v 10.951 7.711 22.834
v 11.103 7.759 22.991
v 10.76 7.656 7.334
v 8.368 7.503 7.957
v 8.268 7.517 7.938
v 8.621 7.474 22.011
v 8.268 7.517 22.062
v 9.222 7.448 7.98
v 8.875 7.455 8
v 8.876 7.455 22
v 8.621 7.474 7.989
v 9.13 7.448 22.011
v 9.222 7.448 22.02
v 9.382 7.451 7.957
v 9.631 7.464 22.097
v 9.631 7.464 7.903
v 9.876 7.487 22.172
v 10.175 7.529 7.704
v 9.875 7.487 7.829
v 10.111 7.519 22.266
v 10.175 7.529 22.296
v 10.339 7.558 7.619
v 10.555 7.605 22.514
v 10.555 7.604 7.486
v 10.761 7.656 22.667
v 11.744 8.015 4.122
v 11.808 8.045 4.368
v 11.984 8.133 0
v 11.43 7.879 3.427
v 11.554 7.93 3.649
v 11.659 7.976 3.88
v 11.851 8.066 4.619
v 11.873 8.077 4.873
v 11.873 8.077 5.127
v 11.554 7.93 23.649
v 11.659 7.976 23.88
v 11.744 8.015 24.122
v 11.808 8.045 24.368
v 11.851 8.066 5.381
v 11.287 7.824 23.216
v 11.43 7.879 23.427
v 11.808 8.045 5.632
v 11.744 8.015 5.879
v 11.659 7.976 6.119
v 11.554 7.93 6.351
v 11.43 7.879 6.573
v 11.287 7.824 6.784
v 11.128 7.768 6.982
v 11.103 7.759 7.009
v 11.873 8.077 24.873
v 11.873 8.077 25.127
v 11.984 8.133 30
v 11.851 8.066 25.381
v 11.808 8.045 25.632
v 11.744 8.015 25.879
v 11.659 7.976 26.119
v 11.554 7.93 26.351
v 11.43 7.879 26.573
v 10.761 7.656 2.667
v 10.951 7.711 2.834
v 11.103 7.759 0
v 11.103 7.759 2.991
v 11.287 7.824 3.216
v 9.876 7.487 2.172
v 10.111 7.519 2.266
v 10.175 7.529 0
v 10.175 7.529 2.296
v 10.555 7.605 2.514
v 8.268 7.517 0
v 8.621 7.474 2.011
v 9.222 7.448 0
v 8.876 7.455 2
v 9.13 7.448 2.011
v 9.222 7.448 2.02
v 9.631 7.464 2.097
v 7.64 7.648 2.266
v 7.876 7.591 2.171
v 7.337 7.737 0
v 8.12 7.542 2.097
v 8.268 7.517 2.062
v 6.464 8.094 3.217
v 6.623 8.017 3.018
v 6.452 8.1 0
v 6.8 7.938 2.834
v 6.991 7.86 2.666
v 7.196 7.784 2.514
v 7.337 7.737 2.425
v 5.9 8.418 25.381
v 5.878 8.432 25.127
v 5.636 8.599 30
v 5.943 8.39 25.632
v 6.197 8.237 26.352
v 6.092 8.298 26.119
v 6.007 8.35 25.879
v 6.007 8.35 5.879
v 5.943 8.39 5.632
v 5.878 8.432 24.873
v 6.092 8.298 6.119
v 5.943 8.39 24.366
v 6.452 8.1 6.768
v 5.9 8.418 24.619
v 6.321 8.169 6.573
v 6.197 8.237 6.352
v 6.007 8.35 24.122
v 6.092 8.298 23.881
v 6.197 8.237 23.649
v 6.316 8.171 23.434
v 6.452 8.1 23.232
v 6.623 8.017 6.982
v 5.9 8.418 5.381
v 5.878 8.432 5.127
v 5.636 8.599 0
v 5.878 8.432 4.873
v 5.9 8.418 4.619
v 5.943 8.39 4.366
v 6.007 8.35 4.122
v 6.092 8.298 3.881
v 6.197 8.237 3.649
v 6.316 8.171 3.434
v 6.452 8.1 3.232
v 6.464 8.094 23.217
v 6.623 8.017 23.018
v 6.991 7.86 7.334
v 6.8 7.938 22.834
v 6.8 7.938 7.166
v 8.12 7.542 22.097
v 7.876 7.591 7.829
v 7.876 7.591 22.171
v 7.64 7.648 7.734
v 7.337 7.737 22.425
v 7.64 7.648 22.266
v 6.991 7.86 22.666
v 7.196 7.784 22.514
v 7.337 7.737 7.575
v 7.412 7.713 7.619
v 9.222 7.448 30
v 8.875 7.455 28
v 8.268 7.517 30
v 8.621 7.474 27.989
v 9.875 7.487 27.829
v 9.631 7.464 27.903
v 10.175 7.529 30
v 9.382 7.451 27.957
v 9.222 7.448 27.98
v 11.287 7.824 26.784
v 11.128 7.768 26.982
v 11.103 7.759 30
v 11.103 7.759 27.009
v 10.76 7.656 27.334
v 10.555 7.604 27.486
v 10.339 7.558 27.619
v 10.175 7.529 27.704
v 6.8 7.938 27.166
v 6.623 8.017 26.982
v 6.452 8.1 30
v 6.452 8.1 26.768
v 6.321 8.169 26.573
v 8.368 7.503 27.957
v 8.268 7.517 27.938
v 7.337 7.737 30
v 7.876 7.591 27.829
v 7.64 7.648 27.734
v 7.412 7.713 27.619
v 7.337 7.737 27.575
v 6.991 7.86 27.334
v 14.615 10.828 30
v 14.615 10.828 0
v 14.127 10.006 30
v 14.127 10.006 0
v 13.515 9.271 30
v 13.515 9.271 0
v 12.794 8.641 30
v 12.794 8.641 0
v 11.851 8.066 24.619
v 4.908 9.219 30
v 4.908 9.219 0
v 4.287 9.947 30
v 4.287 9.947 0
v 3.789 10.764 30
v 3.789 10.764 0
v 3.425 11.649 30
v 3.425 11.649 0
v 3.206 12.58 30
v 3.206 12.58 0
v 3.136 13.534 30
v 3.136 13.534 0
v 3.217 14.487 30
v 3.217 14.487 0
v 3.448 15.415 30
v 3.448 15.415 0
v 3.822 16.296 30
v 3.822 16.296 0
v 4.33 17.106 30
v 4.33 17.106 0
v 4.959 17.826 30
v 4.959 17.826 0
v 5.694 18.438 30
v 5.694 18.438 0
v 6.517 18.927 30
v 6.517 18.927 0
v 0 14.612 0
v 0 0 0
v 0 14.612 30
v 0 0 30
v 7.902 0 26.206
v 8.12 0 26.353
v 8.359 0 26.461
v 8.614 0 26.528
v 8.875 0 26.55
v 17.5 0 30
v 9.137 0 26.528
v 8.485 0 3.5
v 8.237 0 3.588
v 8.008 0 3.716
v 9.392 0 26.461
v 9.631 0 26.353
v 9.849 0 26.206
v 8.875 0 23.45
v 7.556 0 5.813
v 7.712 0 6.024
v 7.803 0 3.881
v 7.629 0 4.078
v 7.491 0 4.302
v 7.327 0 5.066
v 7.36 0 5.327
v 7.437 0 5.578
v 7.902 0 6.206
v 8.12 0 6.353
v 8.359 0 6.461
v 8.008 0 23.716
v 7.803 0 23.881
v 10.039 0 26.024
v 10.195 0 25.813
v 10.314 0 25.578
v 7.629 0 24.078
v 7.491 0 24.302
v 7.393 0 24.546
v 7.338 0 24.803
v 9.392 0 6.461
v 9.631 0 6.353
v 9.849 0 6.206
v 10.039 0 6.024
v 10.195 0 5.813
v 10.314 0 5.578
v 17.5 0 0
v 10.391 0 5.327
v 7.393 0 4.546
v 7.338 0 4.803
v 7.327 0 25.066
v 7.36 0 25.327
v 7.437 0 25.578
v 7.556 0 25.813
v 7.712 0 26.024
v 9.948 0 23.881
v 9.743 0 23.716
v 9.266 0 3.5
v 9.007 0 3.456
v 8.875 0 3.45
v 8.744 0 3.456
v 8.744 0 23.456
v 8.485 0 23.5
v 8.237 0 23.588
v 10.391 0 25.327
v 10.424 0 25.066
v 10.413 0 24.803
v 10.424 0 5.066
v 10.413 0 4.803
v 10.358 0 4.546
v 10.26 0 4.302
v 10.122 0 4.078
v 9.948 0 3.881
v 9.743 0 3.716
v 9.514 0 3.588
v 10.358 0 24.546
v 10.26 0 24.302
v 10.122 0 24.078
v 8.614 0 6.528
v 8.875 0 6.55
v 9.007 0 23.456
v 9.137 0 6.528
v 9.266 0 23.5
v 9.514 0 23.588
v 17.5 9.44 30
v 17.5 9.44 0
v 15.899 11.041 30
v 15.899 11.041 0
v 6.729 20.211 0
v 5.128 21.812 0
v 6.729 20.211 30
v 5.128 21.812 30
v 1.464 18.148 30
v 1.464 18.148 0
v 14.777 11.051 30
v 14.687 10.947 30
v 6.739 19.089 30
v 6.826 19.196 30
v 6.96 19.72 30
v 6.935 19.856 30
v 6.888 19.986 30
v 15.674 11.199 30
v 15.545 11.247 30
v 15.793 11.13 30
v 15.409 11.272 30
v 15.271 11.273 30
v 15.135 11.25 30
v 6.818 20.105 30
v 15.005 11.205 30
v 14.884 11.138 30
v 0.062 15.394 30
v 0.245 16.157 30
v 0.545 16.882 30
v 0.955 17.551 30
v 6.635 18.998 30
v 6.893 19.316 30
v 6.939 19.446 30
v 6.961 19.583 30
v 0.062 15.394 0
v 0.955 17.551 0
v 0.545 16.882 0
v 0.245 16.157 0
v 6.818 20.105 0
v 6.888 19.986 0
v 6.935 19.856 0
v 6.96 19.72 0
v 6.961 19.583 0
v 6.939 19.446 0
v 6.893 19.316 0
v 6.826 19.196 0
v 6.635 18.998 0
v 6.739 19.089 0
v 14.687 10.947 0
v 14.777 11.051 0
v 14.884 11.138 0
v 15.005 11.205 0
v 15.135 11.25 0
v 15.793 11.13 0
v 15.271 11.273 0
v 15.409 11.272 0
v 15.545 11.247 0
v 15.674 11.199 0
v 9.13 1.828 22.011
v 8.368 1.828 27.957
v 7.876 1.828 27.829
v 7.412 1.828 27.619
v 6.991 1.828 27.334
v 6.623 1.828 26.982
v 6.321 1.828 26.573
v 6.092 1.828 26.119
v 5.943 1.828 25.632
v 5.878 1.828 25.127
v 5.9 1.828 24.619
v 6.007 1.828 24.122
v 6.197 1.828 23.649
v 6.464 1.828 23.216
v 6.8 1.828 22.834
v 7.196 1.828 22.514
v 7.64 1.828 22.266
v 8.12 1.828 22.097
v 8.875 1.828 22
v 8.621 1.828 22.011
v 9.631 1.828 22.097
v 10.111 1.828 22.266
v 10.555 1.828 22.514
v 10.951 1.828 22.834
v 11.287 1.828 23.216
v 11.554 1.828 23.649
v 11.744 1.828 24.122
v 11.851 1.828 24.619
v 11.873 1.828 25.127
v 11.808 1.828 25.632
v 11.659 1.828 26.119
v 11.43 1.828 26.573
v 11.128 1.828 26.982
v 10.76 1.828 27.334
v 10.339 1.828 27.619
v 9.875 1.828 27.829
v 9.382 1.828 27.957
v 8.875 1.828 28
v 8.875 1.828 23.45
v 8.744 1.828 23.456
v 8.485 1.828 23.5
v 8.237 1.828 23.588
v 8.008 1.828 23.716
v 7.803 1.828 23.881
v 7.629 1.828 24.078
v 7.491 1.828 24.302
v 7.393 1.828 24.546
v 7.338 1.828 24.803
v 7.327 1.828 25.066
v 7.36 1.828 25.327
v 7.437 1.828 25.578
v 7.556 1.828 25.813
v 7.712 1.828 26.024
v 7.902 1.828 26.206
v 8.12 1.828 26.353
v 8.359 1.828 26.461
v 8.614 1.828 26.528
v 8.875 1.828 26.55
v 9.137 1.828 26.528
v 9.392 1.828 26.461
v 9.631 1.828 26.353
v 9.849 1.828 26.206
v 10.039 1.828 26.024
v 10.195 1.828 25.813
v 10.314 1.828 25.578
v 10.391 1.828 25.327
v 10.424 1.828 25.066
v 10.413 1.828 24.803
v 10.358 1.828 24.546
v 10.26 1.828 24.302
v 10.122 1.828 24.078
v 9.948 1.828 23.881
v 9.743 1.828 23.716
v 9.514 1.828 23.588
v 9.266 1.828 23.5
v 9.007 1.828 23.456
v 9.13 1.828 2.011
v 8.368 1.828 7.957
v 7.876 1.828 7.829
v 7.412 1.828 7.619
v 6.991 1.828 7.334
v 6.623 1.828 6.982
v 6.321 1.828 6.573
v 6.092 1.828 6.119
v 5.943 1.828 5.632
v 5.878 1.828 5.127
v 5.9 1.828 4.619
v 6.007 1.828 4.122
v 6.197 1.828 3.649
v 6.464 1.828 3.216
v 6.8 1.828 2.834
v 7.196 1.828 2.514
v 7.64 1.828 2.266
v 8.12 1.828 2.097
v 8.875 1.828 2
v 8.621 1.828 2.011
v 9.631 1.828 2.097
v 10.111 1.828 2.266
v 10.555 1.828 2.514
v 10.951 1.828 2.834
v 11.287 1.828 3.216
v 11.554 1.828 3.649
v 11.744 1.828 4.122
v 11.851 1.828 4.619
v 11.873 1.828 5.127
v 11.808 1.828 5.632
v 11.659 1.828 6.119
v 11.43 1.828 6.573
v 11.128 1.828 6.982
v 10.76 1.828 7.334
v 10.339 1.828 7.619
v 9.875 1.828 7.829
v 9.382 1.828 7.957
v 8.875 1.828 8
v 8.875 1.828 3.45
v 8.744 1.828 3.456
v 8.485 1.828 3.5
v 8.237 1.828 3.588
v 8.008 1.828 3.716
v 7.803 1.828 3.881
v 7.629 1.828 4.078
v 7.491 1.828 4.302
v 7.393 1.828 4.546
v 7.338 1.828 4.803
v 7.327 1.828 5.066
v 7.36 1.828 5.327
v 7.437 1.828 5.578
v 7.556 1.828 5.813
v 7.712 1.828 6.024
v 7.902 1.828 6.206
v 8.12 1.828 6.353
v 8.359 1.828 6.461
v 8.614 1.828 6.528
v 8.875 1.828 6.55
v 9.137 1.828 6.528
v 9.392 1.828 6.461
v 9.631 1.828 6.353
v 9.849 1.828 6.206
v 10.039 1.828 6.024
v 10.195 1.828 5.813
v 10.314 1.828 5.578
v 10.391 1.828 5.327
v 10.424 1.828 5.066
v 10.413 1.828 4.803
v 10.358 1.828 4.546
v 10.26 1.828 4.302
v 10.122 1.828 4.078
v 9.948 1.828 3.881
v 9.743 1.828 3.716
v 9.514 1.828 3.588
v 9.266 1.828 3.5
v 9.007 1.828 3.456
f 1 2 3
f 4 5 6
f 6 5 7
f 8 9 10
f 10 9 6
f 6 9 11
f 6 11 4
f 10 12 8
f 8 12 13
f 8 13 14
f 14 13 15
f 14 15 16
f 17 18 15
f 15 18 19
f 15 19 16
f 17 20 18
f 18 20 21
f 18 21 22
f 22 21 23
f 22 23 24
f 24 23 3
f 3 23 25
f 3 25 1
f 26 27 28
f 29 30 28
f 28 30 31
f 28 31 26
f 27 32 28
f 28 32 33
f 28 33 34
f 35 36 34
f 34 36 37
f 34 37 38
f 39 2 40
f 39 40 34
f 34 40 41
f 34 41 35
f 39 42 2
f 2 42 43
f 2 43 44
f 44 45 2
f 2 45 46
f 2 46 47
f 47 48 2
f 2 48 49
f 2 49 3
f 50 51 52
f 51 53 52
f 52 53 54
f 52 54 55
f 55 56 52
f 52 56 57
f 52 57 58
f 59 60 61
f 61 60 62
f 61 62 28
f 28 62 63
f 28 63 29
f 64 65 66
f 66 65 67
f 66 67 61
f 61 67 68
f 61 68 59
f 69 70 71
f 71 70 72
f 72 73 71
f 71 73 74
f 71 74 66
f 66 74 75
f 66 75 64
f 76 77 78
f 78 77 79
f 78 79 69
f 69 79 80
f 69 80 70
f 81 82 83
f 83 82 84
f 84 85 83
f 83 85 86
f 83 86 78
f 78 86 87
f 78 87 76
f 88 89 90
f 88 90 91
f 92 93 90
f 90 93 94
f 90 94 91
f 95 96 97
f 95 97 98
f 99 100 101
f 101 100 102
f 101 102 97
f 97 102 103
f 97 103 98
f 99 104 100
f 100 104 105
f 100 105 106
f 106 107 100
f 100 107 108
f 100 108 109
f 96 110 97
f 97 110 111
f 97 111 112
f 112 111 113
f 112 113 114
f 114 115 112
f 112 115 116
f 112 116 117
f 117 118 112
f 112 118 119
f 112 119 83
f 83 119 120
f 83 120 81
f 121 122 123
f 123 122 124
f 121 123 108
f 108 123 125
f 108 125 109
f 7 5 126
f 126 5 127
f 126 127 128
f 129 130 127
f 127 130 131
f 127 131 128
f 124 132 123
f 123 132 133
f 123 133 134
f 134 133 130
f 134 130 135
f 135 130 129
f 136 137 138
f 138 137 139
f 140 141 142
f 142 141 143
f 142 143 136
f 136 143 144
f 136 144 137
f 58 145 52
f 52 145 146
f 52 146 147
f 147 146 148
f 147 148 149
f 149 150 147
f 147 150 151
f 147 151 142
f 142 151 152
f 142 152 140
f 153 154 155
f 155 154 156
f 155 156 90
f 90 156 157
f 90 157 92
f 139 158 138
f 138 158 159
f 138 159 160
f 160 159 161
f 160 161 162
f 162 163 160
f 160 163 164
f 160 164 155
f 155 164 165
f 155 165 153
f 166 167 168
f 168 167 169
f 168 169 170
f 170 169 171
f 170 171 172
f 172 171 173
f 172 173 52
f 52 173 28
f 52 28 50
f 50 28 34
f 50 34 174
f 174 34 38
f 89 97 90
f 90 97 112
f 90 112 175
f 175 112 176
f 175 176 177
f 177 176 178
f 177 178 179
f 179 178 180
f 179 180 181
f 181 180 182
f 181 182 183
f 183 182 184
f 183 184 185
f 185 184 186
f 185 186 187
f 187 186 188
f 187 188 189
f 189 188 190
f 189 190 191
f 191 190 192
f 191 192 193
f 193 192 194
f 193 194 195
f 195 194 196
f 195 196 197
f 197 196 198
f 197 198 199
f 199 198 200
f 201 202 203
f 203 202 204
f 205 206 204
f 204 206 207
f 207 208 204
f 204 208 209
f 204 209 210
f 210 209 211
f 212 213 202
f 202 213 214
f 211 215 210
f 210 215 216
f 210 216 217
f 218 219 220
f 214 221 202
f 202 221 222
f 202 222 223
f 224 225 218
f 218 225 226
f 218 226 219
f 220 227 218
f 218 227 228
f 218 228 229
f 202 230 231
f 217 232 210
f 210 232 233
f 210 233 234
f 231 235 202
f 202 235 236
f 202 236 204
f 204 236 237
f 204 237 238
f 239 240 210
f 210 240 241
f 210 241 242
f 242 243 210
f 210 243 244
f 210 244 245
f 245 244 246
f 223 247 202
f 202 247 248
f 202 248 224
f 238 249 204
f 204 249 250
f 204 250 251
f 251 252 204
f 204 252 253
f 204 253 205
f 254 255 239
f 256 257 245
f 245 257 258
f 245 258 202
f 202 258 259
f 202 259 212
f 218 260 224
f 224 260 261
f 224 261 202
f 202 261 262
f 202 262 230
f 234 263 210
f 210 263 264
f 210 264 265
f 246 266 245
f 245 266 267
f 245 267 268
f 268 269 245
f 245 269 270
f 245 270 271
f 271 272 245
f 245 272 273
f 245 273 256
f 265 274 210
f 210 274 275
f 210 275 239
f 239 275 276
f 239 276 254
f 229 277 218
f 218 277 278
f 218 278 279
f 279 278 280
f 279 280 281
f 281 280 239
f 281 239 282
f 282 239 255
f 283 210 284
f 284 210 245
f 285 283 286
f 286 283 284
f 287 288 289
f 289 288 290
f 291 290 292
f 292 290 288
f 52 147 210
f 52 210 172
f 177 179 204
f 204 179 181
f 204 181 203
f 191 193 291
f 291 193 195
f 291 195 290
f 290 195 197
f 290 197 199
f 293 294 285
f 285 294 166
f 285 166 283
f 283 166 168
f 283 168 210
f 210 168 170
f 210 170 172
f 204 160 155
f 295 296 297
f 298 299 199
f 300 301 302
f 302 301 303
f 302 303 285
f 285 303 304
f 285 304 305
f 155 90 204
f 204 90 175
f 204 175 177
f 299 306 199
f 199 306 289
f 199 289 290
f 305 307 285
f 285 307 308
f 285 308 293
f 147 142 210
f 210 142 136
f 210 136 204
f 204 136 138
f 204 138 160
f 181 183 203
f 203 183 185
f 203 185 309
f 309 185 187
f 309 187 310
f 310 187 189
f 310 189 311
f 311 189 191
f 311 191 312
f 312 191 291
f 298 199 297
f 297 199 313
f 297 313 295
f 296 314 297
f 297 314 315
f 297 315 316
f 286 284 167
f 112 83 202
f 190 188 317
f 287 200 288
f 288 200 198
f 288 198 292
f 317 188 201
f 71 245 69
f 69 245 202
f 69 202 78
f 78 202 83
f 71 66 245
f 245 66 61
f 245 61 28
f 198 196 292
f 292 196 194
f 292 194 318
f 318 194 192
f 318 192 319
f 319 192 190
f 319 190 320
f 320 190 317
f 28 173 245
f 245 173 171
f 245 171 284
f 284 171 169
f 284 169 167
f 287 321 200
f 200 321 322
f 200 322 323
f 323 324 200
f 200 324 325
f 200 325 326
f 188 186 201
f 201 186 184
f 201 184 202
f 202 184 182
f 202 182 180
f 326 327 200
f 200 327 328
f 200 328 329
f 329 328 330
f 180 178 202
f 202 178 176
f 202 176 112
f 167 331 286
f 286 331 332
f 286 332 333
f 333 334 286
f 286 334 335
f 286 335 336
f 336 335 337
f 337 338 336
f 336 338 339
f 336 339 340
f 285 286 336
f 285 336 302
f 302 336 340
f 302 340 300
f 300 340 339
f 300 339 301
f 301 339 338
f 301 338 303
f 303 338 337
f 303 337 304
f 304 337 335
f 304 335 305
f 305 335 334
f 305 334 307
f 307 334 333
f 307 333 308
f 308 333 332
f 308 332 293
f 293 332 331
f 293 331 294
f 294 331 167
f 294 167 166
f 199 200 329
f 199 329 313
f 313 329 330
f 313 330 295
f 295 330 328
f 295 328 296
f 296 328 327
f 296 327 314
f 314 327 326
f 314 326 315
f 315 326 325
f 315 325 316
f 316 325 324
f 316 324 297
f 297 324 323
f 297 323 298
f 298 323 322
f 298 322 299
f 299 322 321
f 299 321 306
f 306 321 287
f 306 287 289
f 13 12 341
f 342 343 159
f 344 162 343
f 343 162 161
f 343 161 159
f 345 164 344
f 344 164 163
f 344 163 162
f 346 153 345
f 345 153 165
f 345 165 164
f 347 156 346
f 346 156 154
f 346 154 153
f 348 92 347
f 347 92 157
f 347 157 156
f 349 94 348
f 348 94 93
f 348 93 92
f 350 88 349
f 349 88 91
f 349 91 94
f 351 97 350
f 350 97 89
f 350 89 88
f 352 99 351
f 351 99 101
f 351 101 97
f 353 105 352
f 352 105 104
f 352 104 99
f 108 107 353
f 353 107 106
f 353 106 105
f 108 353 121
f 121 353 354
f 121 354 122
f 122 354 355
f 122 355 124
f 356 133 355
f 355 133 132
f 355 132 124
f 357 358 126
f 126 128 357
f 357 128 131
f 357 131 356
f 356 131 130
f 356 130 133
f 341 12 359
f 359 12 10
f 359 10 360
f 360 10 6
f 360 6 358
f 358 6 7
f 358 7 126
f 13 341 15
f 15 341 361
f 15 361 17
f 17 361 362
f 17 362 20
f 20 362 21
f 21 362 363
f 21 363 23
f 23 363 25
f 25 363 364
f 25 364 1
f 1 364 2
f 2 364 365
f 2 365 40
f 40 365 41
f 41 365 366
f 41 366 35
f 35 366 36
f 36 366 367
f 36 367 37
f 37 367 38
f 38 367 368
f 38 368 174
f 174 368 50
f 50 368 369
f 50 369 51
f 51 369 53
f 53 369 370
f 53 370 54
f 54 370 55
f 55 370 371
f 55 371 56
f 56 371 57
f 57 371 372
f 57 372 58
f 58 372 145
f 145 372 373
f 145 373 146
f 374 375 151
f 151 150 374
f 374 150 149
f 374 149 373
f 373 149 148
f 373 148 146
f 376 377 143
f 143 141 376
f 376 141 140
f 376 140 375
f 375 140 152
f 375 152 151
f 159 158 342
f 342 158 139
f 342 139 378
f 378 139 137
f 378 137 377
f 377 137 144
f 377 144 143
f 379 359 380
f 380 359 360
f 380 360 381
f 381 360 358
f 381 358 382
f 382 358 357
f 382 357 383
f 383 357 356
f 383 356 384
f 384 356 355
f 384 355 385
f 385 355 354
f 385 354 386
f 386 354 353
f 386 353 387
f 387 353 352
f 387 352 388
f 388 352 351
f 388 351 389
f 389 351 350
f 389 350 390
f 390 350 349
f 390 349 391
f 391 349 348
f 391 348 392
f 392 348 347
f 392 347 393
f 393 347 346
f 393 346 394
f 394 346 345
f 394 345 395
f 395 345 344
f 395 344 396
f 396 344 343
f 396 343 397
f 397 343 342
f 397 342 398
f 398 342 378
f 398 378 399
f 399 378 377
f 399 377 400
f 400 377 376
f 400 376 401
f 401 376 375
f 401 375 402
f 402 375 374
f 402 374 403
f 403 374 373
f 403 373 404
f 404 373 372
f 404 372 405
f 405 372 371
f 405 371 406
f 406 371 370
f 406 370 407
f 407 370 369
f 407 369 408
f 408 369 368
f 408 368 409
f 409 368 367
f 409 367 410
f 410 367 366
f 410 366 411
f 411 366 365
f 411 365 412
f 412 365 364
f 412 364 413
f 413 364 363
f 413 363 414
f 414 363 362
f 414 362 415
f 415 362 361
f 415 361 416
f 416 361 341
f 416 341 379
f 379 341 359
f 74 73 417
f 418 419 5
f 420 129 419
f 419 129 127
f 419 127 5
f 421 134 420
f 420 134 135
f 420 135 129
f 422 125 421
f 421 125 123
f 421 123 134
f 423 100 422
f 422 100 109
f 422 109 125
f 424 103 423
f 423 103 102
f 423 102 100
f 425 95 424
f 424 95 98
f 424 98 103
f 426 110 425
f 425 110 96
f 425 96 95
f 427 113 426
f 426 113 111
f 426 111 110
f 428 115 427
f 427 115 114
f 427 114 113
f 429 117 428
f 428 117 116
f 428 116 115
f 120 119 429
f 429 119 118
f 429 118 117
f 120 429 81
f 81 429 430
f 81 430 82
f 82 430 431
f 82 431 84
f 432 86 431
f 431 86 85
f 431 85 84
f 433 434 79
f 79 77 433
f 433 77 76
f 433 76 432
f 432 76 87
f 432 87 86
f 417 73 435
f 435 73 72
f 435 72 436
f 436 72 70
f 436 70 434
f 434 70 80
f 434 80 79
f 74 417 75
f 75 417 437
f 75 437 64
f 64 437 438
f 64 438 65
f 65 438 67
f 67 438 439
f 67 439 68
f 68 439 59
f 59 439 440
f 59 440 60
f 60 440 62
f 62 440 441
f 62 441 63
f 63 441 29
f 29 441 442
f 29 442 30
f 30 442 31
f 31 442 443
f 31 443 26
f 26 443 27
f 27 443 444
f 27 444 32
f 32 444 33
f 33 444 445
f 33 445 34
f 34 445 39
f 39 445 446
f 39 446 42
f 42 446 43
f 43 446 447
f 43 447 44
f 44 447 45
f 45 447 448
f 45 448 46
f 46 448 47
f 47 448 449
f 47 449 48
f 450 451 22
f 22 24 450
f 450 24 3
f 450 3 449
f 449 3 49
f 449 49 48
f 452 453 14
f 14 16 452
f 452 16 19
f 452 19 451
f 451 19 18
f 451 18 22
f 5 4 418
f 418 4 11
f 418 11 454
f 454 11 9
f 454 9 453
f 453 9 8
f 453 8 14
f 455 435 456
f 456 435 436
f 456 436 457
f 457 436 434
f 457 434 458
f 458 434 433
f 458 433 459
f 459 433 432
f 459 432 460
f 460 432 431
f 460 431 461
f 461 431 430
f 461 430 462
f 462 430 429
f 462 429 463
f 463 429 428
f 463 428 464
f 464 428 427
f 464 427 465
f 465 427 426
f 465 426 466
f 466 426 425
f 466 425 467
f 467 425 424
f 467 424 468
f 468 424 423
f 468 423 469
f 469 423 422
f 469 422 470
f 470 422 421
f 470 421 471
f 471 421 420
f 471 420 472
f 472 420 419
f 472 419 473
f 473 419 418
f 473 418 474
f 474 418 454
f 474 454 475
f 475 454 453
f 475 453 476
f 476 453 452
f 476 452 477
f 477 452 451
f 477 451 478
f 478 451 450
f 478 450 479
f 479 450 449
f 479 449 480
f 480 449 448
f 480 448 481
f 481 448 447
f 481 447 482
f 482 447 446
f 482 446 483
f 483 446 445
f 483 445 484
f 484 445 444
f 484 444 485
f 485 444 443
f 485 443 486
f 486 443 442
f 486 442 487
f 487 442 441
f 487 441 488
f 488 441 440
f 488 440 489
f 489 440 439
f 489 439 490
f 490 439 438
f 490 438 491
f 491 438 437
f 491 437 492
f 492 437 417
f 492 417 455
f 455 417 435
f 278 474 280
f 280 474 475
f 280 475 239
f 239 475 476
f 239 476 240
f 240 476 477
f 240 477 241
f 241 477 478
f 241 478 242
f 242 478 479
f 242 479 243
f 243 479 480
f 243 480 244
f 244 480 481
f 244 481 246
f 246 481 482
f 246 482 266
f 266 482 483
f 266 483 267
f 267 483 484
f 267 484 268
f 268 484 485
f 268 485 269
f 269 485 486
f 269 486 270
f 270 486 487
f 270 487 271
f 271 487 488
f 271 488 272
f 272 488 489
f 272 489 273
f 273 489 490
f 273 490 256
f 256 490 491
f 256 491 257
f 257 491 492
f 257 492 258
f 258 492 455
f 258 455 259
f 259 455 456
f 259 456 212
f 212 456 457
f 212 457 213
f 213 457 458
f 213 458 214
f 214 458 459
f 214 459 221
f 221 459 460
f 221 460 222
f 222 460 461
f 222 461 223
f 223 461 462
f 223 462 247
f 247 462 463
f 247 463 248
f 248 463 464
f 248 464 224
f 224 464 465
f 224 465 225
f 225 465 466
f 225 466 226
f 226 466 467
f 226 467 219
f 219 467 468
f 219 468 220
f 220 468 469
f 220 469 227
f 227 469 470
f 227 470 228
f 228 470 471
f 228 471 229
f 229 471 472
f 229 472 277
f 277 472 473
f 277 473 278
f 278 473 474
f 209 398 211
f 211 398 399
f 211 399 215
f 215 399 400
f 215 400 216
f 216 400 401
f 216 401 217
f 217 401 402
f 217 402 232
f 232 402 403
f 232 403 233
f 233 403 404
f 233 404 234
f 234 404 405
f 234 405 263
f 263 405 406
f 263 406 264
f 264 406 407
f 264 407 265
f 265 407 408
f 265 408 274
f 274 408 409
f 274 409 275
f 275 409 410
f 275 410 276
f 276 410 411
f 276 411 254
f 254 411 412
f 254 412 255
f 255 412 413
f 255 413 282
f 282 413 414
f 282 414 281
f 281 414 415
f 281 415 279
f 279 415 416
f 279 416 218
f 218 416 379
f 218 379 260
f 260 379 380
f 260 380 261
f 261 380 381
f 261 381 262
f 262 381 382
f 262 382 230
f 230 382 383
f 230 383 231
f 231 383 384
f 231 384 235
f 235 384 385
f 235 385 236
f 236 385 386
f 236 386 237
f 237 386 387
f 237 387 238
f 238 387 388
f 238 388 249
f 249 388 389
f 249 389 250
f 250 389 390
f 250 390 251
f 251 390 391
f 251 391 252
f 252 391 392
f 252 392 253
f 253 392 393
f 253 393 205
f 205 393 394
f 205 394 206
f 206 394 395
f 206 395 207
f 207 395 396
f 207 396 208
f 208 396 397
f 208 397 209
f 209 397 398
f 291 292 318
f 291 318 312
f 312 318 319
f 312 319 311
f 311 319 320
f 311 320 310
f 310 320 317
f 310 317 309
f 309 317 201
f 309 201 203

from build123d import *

# Parameters (mm, degrees)
BOSS_EXTRUDE1_DEPTH = 30
FILLET1_R           = 0.8
SKETCH3_R           = 3
CUT_EXTRUDE1_DEPTH  = 9
SKETCH4_R           = 1.55
CUT_EXTRUDE2_DEPTH  = 37.426390381
FILLET2_R           = 5


with BuildPart() as part:
    # Sketch1 → Boss-Extrude1 (new body)
    with BuildSketch(Plane.XY):
        with BuildLine():
            Line((0, 0), (17.5, 0))
            Line((17.5, 0), (17.5, 9.44))
            Line((17.5, 9.44), (15.025126266, 11.914873734))
            ThreePointArc((15.025126266, 11.914873734), (4.907782078, 9.219443047), (7.603212766, 19.336787234))
            Line((7.603212766, 19.336787234), (5.128339032, 21.811660968))
            Line((5.128339032, 21.811660968), (0, 16.683321936))
            Line((0, 16.683321936), (0, 0))
        make_face()
    extrude(amount=BOSS_EXTRUDE1_DEPTH)

    # Fillet1
    fillet1_edges = [part.edges().sort_by_distance(p)[0] for p in [
        (7.603212766, 19.336787234, 15),
        (15.025126266, 11.914873734, 15),
    ]]
    fillet(fillet1_edges, radius=FILLET1_R)

    # Sketch3 → Cut-Extrude1 (cut)
    with BuildSketch(Plane(origin=(0, 10.828405067, 0), x_dir=(-1, 0, 0), z_dir=(0, -1, 0))):
        with Locations(Location((-8.875495285, -5, 0), (0, 0, 270))):
            Circle(SKETCH3_R)
        with Locations(Location((-8.875495285, -25, 0), (0, 0, 270))):
            Circle(SKETCH3_R)
    extrude(amount=CUT_EXTRUDE1_DEPTH, mode=Mode.SUBTRACT)

    # Sketch4 → Cut-Extrude2 (cut, through all)
    with BuildSketch(Plane(origin=(0, 10.828405067, 0), x_dir=(-1, 0, 0), z_dir=(0, -1, 0))):
        with Locations(Location((-8.875495285, -5, 0), (0, 0, 90))):
            Circle(SKETCH4_R)
        with Locations(Location((-8.875495285, -25, 0), (0, 0, 90))):
            Circle(SKETCH4_R)
    extrude(amount=CUT_EXTRUDE2_DEPTH, mode=Mode.SUBTRACT)

    # Fillet2
    fillet2_edges = [part.edges().sort_by_distance(p)[0] for p in [
        (0, 16.683321936, 15),
    ]]
    fillet(fillet2_edges, radius=FILLET2_R)


solid = part.part
